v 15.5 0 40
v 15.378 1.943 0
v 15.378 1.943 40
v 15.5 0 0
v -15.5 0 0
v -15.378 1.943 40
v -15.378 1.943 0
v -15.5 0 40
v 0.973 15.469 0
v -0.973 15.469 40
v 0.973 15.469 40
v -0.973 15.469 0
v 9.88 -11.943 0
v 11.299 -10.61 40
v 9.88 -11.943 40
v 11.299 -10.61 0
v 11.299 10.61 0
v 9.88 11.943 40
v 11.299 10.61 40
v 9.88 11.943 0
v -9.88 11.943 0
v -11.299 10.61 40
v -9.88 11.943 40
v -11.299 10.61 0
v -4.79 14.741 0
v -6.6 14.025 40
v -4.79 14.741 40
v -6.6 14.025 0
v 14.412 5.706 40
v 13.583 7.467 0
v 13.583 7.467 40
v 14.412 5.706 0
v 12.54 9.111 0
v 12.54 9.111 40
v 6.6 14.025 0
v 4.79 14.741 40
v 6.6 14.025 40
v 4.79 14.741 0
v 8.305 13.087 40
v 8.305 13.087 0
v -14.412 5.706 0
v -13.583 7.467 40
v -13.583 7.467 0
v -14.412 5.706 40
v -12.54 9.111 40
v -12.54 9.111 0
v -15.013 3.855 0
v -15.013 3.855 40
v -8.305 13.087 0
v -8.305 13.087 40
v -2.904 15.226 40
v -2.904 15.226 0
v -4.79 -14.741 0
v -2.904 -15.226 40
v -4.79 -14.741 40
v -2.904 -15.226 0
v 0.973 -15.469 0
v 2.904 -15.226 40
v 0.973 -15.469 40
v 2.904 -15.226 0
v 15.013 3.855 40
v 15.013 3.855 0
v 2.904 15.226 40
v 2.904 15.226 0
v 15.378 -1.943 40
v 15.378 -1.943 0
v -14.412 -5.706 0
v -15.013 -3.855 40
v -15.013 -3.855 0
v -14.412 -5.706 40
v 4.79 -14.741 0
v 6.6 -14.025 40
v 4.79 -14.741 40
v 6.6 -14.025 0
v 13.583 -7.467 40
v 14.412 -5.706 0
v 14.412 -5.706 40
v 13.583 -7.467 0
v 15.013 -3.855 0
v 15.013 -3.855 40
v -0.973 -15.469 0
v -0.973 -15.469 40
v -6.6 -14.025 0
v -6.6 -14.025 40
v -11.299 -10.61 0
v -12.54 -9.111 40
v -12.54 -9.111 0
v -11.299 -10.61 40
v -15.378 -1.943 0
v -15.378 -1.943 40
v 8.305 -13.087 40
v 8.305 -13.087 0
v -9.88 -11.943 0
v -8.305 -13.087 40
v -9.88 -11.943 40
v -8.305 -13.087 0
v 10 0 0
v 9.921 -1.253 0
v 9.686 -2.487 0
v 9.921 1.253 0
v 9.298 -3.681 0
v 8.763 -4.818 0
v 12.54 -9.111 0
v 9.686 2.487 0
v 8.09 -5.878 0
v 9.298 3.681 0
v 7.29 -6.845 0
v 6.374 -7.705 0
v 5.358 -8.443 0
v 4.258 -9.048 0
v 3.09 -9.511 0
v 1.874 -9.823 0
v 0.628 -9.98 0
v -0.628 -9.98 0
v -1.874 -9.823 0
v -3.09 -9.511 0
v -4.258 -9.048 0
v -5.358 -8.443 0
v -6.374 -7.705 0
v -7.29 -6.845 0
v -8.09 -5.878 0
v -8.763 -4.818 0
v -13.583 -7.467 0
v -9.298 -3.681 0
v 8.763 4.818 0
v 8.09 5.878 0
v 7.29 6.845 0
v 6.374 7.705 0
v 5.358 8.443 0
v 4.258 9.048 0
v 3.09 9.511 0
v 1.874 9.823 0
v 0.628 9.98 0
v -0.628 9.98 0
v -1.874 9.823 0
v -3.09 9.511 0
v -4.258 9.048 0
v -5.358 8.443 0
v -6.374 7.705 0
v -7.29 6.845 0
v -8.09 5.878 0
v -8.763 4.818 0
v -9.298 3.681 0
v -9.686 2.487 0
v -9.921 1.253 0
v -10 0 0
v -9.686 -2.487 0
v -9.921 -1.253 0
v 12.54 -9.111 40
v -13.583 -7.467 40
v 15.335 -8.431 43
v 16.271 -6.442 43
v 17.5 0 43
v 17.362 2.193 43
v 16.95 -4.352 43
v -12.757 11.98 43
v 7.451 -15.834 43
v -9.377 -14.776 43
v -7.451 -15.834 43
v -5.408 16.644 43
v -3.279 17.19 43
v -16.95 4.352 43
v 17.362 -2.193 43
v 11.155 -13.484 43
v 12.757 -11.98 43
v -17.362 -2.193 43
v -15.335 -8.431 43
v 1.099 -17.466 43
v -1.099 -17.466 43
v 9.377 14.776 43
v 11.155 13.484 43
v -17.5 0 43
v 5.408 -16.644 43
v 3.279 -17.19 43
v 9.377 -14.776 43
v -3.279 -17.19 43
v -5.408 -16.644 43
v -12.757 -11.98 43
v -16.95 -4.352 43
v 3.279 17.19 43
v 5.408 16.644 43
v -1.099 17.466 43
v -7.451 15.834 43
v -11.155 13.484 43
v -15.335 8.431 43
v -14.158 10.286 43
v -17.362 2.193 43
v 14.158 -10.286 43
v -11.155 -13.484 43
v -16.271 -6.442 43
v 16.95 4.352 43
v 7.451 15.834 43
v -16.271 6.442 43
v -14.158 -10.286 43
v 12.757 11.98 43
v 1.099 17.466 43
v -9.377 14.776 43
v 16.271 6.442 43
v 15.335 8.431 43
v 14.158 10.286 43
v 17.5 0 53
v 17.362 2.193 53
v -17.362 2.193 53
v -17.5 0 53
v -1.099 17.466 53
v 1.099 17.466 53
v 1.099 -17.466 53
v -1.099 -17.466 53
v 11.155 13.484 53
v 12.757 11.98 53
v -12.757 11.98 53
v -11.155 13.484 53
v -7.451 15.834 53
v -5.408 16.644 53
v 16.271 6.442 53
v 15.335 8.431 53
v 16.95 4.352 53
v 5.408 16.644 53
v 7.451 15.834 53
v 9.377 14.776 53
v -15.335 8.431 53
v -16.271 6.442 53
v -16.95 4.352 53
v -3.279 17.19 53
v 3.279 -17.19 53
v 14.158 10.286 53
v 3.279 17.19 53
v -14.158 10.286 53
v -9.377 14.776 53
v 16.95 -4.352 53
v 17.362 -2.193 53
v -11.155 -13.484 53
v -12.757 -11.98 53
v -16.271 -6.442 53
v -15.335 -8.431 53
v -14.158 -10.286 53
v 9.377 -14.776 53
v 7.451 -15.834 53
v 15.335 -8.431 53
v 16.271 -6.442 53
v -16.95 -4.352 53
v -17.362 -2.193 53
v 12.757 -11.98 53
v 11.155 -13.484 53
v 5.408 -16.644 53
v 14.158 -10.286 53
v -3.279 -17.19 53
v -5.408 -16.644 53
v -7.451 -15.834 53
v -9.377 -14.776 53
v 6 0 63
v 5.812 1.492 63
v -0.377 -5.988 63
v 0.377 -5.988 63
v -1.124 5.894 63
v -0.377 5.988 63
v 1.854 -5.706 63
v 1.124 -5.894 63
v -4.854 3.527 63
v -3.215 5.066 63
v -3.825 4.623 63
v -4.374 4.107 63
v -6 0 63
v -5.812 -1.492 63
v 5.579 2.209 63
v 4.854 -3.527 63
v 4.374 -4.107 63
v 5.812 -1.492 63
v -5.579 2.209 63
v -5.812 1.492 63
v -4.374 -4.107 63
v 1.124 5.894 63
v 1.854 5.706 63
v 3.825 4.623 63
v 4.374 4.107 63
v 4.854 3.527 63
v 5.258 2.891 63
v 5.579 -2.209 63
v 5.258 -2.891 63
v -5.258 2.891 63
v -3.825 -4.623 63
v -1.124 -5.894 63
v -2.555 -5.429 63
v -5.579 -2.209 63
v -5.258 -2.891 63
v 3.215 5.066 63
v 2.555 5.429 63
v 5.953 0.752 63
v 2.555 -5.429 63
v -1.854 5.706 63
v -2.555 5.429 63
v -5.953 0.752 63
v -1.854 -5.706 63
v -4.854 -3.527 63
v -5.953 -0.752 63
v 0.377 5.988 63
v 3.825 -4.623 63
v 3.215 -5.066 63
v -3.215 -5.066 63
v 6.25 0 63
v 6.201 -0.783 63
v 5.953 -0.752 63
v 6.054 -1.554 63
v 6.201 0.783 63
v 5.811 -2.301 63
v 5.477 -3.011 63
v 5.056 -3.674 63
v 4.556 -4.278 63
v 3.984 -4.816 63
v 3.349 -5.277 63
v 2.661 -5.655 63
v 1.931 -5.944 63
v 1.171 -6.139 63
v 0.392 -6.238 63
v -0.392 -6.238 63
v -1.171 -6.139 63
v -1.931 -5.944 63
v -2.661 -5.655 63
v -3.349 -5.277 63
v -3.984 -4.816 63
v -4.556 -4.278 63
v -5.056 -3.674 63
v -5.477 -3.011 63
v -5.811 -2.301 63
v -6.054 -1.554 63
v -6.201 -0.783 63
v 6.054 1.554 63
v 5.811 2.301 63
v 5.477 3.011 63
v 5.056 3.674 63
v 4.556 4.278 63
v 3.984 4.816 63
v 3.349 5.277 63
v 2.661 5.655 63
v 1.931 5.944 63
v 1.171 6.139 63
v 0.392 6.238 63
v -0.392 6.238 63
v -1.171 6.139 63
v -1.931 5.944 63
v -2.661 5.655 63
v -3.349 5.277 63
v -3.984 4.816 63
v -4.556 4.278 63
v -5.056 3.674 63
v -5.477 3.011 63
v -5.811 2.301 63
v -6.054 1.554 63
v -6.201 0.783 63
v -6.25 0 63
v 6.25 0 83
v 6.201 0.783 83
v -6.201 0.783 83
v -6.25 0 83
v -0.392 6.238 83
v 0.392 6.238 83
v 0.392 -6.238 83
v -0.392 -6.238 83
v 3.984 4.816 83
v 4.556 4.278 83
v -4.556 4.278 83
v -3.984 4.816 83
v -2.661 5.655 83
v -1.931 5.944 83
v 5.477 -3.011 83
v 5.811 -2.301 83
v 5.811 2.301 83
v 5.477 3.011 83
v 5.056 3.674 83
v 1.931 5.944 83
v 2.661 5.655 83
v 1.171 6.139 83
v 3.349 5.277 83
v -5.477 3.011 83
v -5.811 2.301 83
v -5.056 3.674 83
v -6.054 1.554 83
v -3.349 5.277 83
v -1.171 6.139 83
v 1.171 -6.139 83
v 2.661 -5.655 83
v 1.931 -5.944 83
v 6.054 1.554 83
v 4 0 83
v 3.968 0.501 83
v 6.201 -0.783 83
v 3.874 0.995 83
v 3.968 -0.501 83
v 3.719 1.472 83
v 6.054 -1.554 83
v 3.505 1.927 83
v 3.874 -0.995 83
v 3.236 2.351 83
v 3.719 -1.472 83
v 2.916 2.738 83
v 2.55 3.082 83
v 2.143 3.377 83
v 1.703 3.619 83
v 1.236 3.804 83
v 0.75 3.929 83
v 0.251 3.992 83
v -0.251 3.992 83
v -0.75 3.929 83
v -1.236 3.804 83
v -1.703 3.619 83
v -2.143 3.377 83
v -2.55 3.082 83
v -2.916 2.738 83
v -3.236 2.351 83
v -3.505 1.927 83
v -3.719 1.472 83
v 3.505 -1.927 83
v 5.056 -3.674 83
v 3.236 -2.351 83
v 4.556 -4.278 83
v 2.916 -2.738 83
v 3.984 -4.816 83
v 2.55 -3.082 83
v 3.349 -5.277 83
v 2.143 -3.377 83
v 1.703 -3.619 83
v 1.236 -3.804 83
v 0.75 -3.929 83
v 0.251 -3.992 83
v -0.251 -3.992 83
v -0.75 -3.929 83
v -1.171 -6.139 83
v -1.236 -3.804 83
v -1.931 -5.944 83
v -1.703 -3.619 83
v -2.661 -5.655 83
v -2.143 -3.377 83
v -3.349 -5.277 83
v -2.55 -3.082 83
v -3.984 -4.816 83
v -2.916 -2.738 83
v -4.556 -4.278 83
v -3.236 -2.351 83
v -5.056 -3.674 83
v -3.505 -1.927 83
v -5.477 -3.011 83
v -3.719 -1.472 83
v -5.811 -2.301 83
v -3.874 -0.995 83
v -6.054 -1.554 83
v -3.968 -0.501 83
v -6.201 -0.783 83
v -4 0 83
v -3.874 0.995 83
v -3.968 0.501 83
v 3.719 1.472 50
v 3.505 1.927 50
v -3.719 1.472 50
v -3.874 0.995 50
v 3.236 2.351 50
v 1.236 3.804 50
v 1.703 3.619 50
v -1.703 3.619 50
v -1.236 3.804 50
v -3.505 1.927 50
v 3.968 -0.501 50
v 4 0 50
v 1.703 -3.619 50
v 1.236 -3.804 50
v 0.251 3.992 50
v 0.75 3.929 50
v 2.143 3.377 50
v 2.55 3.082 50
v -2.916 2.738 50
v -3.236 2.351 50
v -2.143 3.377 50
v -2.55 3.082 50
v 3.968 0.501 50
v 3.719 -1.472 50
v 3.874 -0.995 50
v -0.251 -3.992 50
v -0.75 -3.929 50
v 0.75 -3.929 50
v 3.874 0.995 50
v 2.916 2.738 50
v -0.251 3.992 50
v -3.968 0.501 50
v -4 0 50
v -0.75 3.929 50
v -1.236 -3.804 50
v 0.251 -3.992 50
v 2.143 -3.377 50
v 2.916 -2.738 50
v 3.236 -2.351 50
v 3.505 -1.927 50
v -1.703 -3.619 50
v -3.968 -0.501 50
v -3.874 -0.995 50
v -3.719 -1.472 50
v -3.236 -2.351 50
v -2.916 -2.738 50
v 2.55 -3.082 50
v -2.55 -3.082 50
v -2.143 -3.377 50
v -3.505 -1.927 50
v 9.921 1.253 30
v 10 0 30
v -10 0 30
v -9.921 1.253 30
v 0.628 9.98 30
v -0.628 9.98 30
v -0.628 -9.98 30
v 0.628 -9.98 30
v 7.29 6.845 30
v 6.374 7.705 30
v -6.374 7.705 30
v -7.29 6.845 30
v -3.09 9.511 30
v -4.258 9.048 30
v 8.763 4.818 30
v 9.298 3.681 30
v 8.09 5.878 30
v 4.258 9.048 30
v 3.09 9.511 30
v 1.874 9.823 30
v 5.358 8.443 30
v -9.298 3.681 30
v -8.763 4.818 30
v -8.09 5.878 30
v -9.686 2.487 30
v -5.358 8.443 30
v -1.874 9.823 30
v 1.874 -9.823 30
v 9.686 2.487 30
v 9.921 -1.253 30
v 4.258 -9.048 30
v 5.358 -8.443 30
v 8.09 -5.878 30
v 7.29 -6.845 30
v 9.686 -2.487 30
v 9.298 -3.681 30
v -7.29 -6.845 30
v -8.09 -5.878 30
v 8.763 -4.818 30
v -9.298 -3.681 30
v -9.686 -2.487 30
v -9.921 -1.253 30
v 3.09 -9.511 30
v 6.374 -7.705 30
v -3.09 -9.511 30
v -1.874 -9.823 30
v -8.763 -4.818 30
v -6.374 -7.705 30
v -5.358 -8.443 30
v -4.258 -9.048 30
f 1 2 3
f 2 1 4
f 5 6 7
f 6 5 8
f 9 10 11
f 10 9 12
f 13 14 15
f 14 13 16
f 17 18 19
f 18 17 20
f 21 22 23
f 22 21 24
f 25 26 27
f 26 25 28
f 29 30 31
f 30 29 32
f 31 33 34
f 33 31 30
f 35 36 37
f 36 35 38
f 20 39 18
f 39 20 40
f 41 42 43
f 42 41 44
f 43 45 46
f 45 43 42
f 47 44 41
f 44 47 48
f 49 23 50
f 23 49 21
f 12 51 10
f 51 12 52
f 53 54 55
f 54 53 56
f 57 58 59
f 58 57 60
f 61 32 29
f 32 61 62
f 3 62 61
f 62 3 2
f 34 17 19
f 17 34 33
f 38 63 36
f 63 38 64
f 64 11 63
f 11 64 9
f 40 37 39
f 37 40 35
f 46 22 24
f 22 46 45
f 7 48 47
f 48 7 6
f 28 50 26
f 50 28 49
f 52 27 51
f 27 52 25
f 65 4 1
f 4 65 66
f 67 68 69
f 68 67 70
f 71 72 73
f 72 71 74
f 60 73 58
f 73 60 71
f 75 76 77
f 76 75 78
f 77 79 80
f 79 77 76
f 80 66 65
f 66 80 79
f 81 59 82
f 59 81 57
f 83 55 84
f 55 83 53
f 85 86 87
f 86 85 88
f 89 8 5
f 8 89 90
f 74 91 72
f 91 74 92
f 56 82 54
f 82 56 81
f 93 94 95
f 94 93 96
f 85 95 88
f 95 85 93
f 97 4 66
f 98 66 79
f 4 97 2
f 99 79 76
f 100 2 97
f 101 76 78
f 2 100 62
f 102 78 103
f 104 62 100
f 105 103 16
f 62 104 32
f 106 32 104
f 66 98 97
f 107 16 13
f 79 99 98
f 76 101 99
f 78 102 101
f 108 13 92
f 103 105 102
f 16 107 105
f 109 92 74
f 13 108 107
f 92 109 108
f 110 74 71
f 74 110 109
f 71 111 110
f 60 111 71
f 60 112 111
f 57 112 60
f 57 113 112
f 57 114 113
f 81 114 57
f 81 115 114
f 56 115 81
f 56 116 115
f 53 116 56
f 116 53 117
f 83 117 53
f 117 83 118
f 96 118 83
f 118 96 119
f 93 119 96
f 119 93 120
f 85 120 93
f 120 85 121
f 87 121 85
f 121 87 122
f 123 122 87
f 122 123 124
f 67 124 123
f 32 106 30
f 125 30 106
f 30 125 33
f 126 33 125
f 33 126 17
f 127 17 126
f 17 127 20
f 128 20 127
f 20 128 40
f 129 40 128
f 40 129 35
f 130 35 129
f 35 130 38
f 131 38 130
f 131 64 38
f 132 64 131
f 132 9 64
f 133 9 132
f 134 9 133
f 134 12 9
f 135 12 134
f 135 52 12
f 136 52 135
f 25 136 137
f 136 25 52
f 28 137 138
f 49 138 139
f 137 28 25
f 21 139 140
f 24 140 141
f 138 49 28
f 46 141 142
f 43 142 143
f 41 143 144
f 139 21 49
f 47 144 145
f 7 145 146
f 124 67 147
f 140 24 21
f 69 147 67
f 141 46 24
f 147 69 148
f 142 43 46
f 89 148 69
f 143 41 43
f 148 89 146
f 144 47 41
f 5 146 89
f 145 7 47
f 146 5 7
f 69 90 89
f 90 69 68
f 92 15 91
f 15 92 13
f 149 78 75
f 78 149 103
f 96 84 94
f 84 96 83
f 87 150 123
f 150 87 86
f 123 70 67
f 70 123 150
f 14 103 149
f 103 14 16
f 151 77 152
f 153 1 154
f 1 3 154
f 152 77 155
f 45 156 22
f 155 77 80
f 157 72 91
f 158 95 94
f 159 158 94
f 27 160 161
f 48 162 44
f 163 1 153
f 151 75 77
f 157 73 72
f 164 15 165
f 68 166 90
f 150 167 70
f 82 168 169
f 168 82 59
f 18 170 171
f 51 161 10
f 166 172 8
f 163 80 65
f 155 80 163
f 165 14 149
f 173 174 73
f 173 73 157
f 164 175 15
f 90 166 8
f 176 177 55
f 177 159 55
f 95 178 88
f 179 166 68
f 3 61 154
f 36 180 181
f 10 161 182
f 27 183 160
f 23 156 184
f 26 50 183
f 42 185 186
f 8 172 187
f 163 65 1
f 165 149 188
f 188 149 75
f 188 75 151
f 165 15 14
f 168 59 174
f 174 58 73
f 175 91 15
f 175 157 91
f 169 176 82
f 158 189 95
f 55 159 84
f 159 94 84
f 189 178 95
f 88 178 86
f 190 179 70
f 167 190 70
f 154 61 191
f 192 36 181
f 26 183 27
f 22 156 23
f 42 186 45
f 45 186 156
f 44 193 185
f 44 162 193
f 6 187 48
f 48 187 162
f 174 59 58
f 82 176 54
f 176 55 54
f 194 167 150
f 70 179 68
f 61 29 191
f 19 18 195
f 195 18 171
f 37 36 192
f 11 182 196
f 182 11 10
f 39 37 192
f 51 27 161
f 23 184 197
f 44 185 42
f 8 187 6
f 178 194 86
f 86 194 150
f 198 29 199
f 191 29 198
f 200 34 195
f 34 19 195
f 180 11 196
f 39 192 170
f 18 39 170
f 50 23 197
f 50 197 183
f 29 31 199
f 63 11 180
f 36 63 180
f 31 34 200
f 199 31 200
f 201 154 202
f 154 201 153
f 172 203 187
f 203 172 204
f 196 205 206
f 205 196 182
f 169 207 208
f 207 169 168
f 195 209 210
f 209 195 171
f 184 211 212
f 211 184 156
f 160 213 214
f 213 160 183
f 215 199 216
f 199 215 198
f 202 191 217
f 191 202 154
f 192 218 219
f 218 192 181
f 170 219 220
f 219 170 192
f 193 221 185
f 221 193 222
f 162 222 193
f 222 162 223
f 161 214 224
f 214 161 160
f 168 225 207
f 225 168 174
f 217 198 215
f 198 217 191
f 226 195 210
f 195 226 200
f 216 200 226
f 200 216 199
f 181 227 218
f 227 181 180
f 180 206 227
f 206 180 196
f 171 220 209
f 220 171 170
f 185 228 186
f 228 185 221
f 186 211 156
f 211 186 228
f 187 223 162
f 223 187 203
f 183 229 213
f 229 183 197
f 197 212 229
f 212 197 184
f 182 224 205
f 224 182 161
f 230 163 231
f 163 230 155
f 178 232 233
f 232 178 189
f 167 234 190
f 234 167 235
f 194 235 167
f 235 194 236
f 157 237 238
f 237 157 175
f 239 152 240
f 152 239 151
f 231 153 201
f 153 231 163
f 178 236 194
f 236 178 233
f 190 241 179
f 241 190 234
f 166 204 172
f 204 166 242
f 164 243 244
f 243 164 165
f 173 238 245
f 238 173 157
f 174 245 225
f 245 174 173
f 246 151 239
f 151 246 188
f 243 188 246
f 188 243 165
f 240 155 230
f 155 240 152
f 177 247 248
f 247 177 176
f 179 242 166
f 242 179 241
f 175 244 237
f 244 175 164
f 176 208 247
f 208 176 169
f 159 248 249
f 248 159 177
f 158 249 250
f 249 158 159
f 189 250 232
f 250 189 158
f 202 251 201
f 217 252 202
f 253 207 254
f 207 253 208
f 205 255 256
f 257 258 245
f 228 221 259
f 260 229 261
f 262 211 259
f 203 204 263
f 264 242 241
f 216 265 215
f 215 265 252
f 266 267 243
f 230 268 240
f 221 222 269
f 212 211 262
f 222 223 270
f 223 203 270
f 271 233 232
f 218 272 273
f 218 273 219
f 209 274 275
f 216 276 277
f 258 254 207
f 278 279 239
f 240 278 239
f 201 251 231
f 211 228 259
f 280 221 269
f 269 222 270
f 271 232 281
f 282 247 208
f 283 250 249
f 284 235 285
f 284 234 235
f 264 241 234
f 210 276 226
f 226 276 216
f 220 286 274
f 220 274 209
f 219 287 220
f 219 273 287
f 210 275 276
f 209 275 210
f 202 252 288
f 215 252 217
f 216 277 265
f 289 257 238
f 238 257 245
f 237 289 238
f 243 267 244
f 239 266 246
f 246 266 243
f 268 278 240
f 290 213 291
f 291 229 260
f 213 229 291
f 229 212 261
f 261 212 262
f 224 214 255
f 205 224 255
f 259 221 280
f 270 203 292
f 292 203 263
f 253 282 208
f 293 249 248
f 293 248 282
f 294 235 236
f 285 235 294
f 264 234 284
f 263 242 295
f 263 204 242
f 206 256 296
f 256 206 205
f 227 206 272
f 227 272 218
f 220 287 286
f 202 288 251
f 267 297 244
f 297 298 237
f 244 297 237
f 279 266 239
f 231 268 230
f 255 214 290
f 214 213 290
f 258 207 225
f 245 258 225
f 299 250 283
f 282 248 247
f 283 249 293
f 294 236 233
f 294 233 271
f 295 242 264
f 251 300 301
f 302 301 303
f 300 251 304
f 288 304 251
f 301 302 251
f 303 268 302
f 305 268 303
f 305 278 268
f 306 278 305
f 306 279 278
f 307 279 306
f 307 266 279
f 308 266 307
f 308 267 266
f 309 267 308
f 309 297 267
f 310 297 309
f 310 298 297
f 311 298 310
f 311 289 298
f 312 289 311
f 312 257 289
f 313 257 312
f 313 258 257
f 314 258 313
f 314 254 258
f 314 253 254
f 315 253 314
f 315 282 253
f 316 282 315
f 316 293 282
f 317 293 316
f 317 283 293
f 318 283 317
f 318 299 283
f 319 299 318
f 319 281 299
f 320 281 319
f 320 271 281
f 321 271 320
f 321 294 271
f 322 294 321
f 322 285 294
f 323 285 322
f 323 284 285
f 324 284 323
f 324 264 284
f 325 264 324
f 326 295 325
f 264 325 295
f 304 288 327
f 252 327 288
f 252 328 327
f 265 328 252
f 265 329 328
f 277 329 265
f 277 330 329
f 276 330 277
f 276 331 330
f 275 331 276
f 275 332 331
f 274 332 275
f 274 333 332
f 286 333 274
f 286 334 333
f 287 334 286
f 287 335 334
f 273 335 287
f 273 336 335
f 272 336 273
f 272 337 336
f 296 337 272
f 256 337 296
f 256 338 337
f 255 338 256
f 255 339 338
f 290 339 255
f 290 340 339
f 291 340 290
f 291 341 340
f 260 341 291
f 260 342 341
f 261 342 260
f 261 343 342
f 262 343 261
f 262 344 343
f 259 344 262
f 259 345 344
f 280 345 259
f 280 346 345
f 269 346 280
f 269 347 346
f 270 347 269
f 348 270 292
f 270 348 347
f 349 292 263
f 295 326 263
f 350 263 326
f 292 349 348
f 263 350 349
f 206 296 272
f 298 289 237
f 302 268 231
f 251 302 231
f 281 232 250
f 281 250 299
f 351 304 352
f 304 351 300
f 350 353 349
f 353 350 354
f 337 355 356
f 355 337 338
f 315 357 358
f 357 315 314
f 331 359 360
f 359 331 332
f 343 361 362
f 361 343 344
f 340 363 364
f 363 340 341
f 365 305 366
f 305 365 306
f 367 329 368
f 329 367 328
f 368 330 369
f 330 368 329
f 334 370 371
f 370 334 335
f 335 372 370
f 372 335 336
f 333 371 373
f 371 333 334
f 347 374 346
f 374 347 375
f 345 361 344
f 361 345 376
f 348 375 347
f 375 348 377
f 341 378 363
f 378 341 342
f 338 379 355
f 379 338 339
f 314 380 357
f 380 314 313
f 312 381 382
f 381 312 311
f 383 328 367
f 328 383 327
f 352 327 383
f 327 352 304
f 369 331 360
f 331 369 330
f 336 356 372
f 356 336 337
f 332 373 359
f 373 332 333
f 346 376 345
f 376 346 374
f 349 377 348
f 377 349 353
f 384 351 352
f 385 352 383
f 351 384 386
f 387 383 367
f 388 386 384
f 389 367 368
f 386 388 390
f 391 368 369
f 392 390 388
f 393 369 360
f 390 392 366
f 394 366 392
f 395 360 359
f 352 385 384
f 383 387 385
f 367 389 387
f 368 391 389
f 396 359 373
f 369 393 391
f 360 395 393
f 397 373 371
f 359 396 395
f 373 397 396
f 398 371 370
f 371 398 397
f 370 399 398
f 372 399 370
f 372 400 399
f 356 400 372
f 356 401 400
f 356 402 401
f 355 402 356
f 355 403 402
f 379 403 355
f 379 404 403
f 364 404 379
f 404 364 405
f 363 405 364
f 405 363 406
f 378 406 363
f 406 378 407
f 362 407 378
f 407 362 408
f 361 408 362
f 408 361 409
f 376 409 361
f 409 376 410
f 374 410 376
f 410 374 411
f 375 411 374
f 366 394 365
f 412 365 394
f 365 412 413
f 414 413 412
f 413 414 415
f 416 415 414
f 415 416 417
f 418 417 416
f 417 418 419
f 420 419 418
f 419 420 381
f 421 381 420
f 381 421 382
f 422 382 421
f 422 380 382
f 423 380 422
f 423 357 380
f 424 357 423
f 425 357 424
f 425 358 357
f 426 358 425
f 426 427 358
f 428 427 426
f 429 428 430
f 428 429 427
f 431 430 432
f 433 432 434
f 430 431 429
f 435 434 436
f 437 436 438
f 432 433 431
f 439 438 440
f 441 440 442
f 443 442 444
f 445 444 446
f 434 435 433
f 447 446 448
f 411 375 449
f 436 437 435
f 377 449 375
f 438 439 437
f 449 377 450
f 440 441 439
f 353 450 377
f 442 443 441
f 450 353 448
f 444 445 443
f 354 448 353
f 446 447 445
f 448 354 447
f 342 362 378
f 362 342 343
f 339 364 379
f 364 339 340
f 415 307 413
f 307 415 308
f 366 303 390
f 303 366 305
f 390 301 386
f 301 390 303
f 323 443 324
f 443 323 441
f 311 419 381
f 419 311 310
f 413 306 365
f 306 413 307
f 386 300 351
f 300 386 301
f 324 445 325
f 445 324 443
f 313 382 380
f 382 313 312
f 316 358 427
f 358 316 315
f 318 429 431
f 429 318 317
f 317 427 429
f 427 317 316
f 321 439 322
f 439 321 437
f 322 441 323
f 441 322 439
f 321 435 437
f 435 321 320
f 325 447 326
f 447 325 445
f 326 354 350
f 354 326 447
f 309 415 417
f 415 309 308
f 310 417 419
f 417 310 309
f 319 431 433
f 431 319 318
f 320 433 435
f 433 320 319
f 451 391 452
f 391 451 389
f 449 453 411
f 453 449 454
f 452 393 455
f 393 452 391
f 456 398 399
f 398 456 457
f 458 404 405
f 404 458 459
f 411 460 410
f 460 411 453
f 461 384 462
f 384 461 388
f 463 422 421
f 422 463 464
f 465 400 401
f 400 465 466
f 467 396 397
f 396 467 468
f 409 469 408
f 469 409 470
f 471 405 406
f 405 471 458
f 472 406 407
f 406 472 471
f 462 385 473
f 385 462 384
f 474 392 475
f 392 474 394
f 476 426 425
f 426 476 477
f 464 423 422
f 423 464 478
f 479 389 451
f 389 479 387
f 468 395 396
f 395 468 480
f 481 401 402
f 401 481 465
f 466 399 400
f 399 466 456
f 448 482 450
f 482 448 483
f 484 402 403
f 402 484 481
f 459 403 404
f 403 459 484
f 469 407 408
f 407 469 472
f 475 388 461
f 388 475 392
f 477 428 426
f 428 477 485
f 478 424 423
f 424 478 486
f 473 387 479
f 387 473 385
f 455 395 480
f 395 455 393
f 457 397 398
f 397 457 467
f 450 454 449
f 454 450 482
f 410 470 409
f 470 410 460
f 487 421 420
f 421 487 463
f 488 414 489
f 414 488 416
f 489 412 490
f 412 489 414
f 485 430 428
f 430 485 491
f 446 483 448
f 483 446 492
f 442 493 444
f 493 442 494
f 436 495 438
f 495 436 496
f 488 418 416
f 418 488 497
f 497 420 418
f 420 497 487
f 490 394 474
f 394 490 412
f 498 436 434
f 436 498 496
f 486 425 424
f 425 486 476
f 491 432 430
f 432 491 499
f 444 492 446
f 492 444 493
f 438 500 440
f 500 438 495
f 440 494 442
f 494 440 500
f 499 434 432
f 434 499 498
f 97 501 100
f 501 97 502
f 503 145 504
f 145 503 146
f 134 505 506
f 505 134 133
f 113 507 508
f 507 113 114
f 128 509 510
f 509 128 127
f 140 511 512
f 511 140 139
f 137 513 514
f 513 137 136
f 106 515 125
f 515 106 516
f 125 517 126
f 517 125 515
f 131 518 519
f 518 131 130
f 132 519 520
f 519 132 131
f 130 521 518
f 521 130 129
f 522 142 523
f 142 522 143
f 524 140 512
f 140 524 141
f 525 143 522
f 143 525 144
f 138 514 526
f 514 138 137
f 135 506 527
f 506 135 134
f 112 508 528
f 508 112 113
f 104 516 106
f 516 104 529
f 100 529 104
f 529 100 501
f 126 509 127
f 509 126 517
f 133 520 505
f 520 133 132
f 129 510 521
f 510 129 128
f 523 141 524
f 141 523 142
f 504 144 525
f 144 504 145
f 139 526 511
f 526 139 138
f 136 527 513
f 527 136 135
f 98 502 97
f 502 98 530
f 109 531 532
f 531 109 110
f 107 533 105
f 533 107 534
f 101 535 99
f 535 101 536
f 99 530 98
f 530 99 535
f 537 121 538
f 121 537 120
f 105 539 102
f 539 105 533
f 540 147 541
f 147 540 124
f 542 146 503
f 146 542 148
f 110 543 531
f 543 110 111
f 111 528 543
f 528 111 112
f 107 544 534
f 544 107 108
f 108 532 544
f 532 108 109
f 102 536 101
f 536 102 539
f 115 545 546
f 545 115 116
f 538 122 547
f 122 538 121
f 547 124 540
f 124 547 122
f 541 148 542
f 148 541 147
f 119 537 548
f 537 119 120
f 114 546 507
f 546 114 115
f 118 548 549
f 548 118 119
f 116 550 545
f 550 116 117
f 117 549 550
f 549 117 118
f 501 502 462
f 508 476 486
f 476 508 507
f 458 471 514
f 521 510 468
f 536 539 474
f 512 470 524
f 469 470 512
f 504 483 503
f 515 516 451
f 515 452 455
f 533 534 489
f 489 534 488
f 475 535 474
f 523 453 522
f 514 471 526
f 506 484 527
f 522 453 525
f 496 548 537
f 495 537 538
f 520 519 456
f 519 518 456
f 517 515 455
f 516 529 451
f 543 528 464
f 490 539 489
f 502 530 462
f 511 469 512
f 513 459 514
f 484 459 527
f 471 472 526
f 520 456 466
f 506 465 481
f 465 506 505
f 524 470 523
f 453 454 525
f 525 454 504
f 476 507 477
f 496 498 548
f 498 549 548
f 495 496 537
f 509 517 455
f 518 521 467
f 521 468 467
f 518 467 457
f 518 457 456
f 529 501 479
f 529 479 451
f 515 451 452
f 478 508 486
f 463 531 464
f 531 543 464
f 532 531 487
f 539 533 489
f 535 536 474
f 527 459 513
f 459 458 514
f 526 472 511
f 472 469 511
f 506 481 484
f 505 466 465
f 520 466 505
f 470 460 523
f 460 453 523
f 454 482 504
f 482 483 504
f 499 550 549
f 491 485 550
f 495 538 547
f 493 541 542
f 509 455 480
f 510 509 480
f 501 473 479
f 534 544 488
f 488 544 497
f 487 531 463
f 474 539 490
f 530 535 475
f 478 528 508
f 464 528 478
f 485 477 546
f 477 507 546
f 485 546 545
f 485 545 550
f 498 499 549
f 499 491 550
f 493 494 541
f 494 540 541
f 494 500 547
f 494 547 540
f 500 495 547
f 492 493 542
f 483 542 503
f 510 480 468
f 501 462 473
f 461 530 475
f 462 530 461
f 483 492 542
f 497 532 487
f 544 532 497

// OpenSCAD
$fn=50;
difference() {
    union() {
        cylinder(40,31/2,31/2);
        translate([0,0,40]) cylinder(3,31/2,35/2);
        translate([0,0,43]) cylinder(10,35/2,35/2);
        translate([0,0,53]) cylinder(10,35/2,12/2);
        translate([0,0,63]) cylinder(20,12.5/2,12.5/2);
    }
    cylinder(83,8/2,8/2);
    cylinder(30,20/2,20/2);
    translate([0,0,30]) cylinder(20,20/2,8/2);
}
